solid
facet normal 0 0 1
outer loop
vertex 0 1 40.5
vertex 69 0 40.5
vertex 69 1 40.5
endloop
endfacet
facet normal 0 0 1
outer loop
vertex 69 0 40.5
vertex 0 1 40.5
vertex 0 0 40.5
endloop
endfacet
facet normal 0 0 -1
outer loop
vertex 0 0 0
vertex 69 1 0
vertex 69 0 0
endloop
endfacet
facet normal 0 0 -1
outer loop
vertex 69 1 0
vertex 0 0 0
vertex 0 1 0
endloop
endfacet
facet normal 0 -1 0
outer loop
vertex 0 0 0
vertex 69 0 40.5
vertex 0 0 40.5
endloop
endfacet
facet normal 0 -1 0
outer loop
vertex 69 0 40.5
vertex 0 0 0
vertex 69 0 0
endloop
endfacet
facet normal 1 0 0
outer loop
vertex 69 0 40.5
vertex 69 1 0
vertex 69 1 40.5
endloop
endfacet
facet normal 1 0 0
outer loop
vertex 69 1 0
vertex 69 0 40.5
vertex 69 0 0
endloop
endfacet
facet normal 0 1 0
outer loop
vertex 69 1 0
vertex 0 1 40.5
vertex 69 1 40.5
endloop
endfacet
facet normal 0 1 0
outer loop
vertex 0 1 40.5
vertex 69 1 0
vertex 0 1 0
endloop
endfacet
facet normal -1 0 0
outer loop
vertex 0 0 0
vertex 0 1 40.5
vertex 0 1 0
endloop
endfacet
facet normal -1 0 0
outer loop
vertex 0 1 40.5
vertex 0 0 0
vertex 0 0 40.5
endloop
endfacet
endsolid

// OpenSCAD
// file: Servo-wheel.scad
//-------------------------------------------------------------
//-- Servo wheel
//-- (c) Juan Gonzalez (obijuan) juan@iearobotics.com
//-- March-2012
//-------------------------------------------------------------
//-- Wheel for mobile robots, drived by Futaba 3003 servos
//-------------------------------------------------------------
include <configuration.scad>


//-- Parameters common to all horns
horn_drill_diam = 1.5;
horn_height = 6;        //-- Total height: shaft + plate
horn_plate_height = 2;  //-- plate height

//-- Futaba 3003 servo rounded horn parameters
rh_diam1 = 8.5;  //-- Rounded horn small diameter
rh_diam2 = 21.5; //-- Rounded horn big diameter
rounded_horn_drill_distance = 7.3;

//-- Futaba 3003 horn drills


//-- Futaba 3003 4-arm horn parameters
a4h_end_diam = 5;
a4h_center_diam = 10;
a4h_arm_length = 15;
a4h_drill_distance = 13.3;


//-- Futaba 3003 6-arm horn parameters
a6h_end_diam = 5;
a6h_center_diam = 10;
a6h_arm_length=10;
a6h_arm_base_diam=7.5;
a6h_drill_distance = 10.9;


//-------------------------------------------------------
//--- Parameters:
//-- or_idiam: O-ring inner diameter
//-- or_diam: O-ring section diameter
//-- h: Height of the wheel
//--
//--  Module for generating a raw wheel, with no drills
//--  and no servo horn
//-------------------------------------------------------
module raw_wheel(or_idiam=50, or_diam=3, h=6)
{
   //-- Wheel parameters
   r = wheels_diam / 2;   //-- Radius

  //-- Temporal points
  l = or_diam*sqrt(2)/2;

  difference() {
    //-- Body of the wheel
    cylinder (r=r, h=h, $fn=100,center=true);

    //--  wheel's inner section
    rotate_extrude($fn=100)
      translate([r-or_diam/2,0,0])
      polygon( [ [0,0],[l,l],[l,-l] ] , [ [0,1,2] ]);
  }
}

//--------------------------------------------------------------
//-- Generic module for the horn's drills
//-- Parameters:
//--  d = drill's radial distance (from the horn's center)
//--  n = number of drills
//--  h = wheel height
//--------------------------------------------------------------
module horn_drills(d,n,h)
{
  union() {
    for ( i = [0 : n-1] ) {
        rotate([0,0,i*360/n])
        translate([0,d,0])
        cylinder(r=horn_drill_diam/2, h=h+10,center=true, $fn=6);  
      }
  }
}

//-----------------------------------------
//-- Futaba 3003 horn4 arm
//-- This module is just one arm
//-----------------------------------------
module horn4_arm(h=5)
{
  translate([0,a4h_arm_length-a4h_end_diam/2,0])
  //-- The arm consist of the perimeter of a cylinder and a cube
  hull() {
    cylinder(r=a4h_end_diam/2, h=h, center=true, $fn=20);
    translate([0,1-a4h_arm_length+a4h_end_diam/2,0])
      cube([a4h_center_diam,2,h],center=true);
  }
}

//-----------------------------------------
//-- Futaba 3003 horn6 arm
//-- This module is just one arm
//-----------------------------------------
module horn6_arm(h=5)
{
  translate([0,a6h_arm_length-a6h_end_diam/2,0])
  //-- The arm consist of the perimeter of a cylinder and a cube
  hull() {
    cylinder(r=a6h_end_diam/2, h=h, center=true, $fn=20);
    translate([0,-a6h_arm_length+a6h_end_diam/2,0])
    cube([a6h_arm_base_diam,0.1,h],center=true);
  }
}


//-------------------------------------------
//-- Futaba 3003 4-arm horn
//-------------------------------------------
module horn4(h=5)
{
  union() {
    //-- Center part (is a square)
    cube([a4h_center_diam+0.2,a4h_center_diam+0.2,h],center=true);

    //-- Place the 4 arms in every side of the cube
    for ( i = [0 : 3] ) {
      rotate( [0,0,i*90])
      translate([0, a4h_center_diam/2, 0])
      horn4_arm(h);
    }
  }

}

//-------------------------------------------
//-- Futaba 3003 6-arm horn
//-------------------------------------------
module horn6(h=5)
{
  union() {
    //-- The center part is a cylinder
    cylinder(r=15/2,h=h,center=true);

    //-- Place the 6 arms rotated 60 degrees
    for ( i = [0 : 5] ) {
      rotate( [0,0,i*60])
      translate([0, 15/2*cos(30), 0])
      horn6_arm(h);
    }
  }
}


//-------------------------------------------------------
//--  A Wheel for the futaba 3003 rounded horns
//--------------------------------------------------------
module Servo_wheel_rounded_horn()
{
  difference() {
      raw_wheel(or_idiam=wheel_or_idiam, or_diam=wheel_or_diam, h=wheel_height);

      //-- Inner drill
      cylinder(center=true, h=2*wheel_height + 10, r=rh_diam1/2+0.2,$fn=100);

      //-- Carved circle for the Futaba rounded horn
      translate([0,0,-wheel_height/2+horn_height-horn_plate_height]) 
       cylinder(r=rh_diam2/2+0.25, h=2*wheel_height+10,$fn=30);

      //-- small drills for the rounded horn
      horn_drills(d=rounded_horn_drill_distance, n=4, h=wheel_height);
  }

}

//-------------------------------------------------------
//--  A Wheel for the futaba 3003 4-arm horns
//--------------------------------------------------------
module Servo_wheel_4_arm_horn()
{
  difference() {
      raw_wheel(or_idiam=wheel_or_idiam, or_diam=wheel_or_diam, h=wheel_height);

      //-- Inner drill
      cylinder(center=true, h=2*wheel_height + 10, r=a4h_center_diam/2,$fn=20);

      //-- substract the 4-arm servo horn
      translate([0,0,horn_height-horn_plate_height])
        horn4(h=wheel_height);

      //-- Horn drills
      horn_drills(d=a4h_drill_distance, n=4, h=wheel_height);

  }
}

//-------------------------------------------------------
//--  A Wheel for the futaba 3003 6-arm horns
//--------------------------------------------------------
module Servo_wheel_6_arm_horn()
{
  difference() {
      raw_wheel(or_idiam=wheel_or_idiam, or_diam=wheel_or_diam, h=wheel_height);

       //-- Inner drill
      cylinder(center=true, h=2*wheel_height + 10, r=a6h_center_diam/2,$fn=20);

      //-- substract the 6-arm horn
      translate([0,0,horn_height-horn_plate_height])
      horn6(h=wheel_height);

      //-- Horn drills
      horn_drills(d=a6h_drill_distance, n=6, h=wheel_height);
  }
}


//-- Test!

//Servo_wheel_rounded_horn();
//translate([wheel_or_idiam+10,0,0]) 
//Servo_wheel_4_arm_horn();

//translate([-wheel_or_idiam-10,0,0]) Servo_wheel_6_arm_horn();


/*-- Calculating the top view (for the documentation) 
projection(cut=false)
Servo_wheel_4_arm_horn();
*/
  // translate([0,0,horn_height-horn_plate_height])
       // horn4(h=wheel_height);


/*-- Horn6. Used in the freecad drawing
translate([0, 0, 4/2 + 2/2],$fn=50)
cylinder(r=8.5/2, h=4, center=true);
horn4(h=2);
*/
// file: configuration.scad
//------------------------------------
//-- Miniskybot 2 configuration file
//------------------------------------

//-- drills
drill_M3 = 3.2;

//-- captive Nuts
nut_h = 2.6;
nut_radius = 6.6/2;

//------------------------------------------------
//-- Servo parameters
//-- See the doc/futaba-doc.pdf file
//------------------------------------------------
//-- Servo futaba 3003 dimensions
servo_c1 = 20;
servo_c2 = 7.5;
servo_c3 = 26.4;
servo_c4 = 40.3;
servo_c5 = 30.3;
servo_c6 = 10;
servo_c7 = 11.6;
servo_c8 = 4.1;
servo_c9 = 5.2;
servo_c10 = 9.6;

//-------------------------------------------
//-- Battery holder parameters
//-- See the doc/battery_holder-doc.pdf file
//-------------------------------------------
battery_c1 = 49;
battery_c2 = 51.5;
battery_c3 = 12;
battery_ear_diam = 9;
battery_ear_h = 3;
battery_top_gap = 1;  
//-- Real battery height whith batteries inserted
battery_height = battery_c3 + battery_top_gap;

//-------------------------------------------------
//-- Wheels parameters. 
//-- See the doc/Servo-wheels-doc.pdf
//------------------------------------------------
wheel_or_idiam = 50;                   //-- O-ring inner diameter
wheel_or_diam = 3;                     //-- O-ring section diameter
wheel_height = 2*wheel_or_diam+0;     //-- Wheel height: change the 0 for 
                                      //-- other value (0 equals minimun height)
                                      
//-- Wheel diameter is calculated from the o_ring                                      
wheels_diam = wheel_or_idiam + 2*wheel_or_diam;
wheel_gap = 1;  //-- For the final view. space between servo and wheel


//-------------------------------------------------
//-- Chassis (see doc/chassis-doc.pdf)
//-------------------------------------------------

robot_height = 47;

//-------- Rear part parameters ------------
rear_c1 = servo_c2 + 3;
rear_c2 = servo_c3*2;
rear_c3 = servo_c1 + battery_height -battery_ear_h;
rear_edge_rad = 3;

//-- Ball caster parameters
WallThickness = 2.25; //thickness of the retaining wall
BallSize = 16.4;  //diameter of  your ball bearing.
Airgap = .65;  // Gap between ball and wall  
BallProtrude = .35; //percentage of ball radius sticking out 
ball_caster_height = robot_height-(BallSize*BallProtrude);

//-- Front part parameters
front_c1 = battery_ear_diam + 4;
front_thickness = 3;
frame_corner_radius = 3;


//-- Top plate
top_plate_c1 = battery_c1 + front_c1 + rear_c1;
top_plate_c2 = rear_c2+5;
top_plate_thickness = 4;


//-- Skymega board dimensions
skymega_lx = 51.4;
skymega_ly = 51.4;
skymega_width=3;
skymega_dx = 15;
skymega_dy = 15;

//-- ultrasounds
ultrasound_hole = 16.5;
ultrasound_base_lx = 24+1;
ultrasound_base_ly = 20+1;
ultrasound_base_lz = 3;
ultrasound_length = 12.5;
ultrasound_drill_1 = [-9,7,0];
ultrasound_drill_2 = [9,-8,0];
// file: sector.scad
translate([0,0,0]) sector(30, 20, 10, 90);
translate([22,0,0]) sector(30, 20, 300, 30);
translate([0,22,0]) sector(30, 20, 30, 300);
translate([22,22,0]) sector(30, 20, 10, 190);

module sector(h, d, a1, a2) {
    if (a2 - a1 > 180) {
        difference() {
            cylinder(h=h, d=d);
            translate([0,0,-0.5]) sector(h+1, d+1, a2-360, a1); 
        }
    } else {
        difference() {
            cylinder(h=h, d=d);
            rotate([0,0,a1]) translate([-d/2, -d/2, -0.5])
                cube([d, d/2, h+1]);
            rotate([0,0,a2]) translate([-d/2, 0, -0.5])
                cube([d, d/2, h+1]);
        }
    }
}    
// file: ruletapastillero.scad
use<sector.scad>;
use<Getriebe.scad>;
include <configuration.scad>
include<Servo-wheel.scad>;

//Caja base para el pastillero
module cajapastis (tomasDia=4,
alturaPastillero=50,
diametroExtPastillero=250,
diametroIntPastillero=110,
grosorLateralPastillero=10,
grosorInferiorPastillero=10,
grosorCajonPastillero=1.5,
profundidadLatCajon=2,
produndidadInfCajon=1,
alturaHueco=27,
diametroHueco=87
){

tomassem=tomasDia*7;
angulo=360/tomassem;
//anguloinic=(tomasDia%2!=0)? angulo: 0;   
anguloinic=0;
alturaCajin=alturaPastillero-grosorInferiorPastillero+produndidadInfCajon;
module cajitas(){

for(n = [anguloinic : angulo : 360]){
    rotate([0,0,n])
    translate([(diametroIntPastillero/2)-profundidadLatCajon,0,(grosorInferiorPastillero-produndidadInfCajon)])
    cube([((diametroExtPastillero-diametroIntPastillero)/2),grosorCajonPastillero,alturaCajin]);
}
}
module formaCaja(){
difference(){
    cylinder(h=alturaPastillero,d=diametroExtPastillero,$fn=tomassem);
    translate([0,0,grosorInferiorPastillero]){   
    cylinder(h=alturaPastillero,d=diametroExtPastillero-grosorLateralPastillero,$fn=tomassem);    
    }    
}
cylinder(h=alturaPastillero,d=diametroIntPastillero,$fn=tomassem);
  
  
}
module solidgear(){
translate([0,-30,0])
zahnstange_und_rad (modul=2, laenge_stange=0, zahnzahl_rad=30, hoehe_stange=5, bohrung_rad=4, breite=10, eingriffswinkel=20, schraegungswinkel=0, zusammen_gebaut=true, optimiert=true);
 cylinder(h=10, d=50, $fn=200);
}

module cajaPastillas(){
 
difference(){
formaCaja();
//translate([0,-diametroExtPastillero/2,0])
//zahnstange_und_rad (modul=diametroAgujeroMotor/10, laenge_stange=0, zahnzahl_rad=30, hoehe_stange=5, bohrung_rad=4, breite=profundidadAgujeroMotor, eingriffswinkel=20, schraegungswinkel=0, zusammen_gebaut=true, optimiert=true);
//cylinder(h=profundidadAgujeroMotor, d=diametroAgujeroMotor, $fn=200);
    
    //hueco interior
    translate([0,0,17])
    cylinder(h=alturaHueco,d=diametroHueco,$fn=100);
  translate([0,0,0])
scale([1.03,1.03,1.03])
solidgear(); 
     cajitas(); 
}
}
cajaPastillas();

}
module cajaizq(){
//mirando desde el lado del corte de la seccion    
//1
translate([105,0,3])
cube([10,15,3]);
//3
translate([-75,0,3])
cube([10,15,3]);
    
difference(){
cajapastis();    
//2 aplicada una tolerancia de 0.25mm por lado
translate([64.75,-14.75,2.75])
#cube([10.5,15.5,3.5]);
//4 aplicada una tolerancia de 0.25mm por lado
translate([-115.25,-15.25,2.75])
#cube([10.5,15.5,3.5]);
//translate([-150,-150,0])
//#cube([300,150,50]);
}    
}
//cajaizq();
//cajapastis();
//rotate([0,0,180])
//translate([0,-25,0])
//cajaizq();
// main file
include<ruletapastillero.scad>;
//tolerancias de 1 0.3, 0.5
cube([((250-110)/2)-1,1.5-0.5,50-10+1-0.5]);
//cajapastis();
